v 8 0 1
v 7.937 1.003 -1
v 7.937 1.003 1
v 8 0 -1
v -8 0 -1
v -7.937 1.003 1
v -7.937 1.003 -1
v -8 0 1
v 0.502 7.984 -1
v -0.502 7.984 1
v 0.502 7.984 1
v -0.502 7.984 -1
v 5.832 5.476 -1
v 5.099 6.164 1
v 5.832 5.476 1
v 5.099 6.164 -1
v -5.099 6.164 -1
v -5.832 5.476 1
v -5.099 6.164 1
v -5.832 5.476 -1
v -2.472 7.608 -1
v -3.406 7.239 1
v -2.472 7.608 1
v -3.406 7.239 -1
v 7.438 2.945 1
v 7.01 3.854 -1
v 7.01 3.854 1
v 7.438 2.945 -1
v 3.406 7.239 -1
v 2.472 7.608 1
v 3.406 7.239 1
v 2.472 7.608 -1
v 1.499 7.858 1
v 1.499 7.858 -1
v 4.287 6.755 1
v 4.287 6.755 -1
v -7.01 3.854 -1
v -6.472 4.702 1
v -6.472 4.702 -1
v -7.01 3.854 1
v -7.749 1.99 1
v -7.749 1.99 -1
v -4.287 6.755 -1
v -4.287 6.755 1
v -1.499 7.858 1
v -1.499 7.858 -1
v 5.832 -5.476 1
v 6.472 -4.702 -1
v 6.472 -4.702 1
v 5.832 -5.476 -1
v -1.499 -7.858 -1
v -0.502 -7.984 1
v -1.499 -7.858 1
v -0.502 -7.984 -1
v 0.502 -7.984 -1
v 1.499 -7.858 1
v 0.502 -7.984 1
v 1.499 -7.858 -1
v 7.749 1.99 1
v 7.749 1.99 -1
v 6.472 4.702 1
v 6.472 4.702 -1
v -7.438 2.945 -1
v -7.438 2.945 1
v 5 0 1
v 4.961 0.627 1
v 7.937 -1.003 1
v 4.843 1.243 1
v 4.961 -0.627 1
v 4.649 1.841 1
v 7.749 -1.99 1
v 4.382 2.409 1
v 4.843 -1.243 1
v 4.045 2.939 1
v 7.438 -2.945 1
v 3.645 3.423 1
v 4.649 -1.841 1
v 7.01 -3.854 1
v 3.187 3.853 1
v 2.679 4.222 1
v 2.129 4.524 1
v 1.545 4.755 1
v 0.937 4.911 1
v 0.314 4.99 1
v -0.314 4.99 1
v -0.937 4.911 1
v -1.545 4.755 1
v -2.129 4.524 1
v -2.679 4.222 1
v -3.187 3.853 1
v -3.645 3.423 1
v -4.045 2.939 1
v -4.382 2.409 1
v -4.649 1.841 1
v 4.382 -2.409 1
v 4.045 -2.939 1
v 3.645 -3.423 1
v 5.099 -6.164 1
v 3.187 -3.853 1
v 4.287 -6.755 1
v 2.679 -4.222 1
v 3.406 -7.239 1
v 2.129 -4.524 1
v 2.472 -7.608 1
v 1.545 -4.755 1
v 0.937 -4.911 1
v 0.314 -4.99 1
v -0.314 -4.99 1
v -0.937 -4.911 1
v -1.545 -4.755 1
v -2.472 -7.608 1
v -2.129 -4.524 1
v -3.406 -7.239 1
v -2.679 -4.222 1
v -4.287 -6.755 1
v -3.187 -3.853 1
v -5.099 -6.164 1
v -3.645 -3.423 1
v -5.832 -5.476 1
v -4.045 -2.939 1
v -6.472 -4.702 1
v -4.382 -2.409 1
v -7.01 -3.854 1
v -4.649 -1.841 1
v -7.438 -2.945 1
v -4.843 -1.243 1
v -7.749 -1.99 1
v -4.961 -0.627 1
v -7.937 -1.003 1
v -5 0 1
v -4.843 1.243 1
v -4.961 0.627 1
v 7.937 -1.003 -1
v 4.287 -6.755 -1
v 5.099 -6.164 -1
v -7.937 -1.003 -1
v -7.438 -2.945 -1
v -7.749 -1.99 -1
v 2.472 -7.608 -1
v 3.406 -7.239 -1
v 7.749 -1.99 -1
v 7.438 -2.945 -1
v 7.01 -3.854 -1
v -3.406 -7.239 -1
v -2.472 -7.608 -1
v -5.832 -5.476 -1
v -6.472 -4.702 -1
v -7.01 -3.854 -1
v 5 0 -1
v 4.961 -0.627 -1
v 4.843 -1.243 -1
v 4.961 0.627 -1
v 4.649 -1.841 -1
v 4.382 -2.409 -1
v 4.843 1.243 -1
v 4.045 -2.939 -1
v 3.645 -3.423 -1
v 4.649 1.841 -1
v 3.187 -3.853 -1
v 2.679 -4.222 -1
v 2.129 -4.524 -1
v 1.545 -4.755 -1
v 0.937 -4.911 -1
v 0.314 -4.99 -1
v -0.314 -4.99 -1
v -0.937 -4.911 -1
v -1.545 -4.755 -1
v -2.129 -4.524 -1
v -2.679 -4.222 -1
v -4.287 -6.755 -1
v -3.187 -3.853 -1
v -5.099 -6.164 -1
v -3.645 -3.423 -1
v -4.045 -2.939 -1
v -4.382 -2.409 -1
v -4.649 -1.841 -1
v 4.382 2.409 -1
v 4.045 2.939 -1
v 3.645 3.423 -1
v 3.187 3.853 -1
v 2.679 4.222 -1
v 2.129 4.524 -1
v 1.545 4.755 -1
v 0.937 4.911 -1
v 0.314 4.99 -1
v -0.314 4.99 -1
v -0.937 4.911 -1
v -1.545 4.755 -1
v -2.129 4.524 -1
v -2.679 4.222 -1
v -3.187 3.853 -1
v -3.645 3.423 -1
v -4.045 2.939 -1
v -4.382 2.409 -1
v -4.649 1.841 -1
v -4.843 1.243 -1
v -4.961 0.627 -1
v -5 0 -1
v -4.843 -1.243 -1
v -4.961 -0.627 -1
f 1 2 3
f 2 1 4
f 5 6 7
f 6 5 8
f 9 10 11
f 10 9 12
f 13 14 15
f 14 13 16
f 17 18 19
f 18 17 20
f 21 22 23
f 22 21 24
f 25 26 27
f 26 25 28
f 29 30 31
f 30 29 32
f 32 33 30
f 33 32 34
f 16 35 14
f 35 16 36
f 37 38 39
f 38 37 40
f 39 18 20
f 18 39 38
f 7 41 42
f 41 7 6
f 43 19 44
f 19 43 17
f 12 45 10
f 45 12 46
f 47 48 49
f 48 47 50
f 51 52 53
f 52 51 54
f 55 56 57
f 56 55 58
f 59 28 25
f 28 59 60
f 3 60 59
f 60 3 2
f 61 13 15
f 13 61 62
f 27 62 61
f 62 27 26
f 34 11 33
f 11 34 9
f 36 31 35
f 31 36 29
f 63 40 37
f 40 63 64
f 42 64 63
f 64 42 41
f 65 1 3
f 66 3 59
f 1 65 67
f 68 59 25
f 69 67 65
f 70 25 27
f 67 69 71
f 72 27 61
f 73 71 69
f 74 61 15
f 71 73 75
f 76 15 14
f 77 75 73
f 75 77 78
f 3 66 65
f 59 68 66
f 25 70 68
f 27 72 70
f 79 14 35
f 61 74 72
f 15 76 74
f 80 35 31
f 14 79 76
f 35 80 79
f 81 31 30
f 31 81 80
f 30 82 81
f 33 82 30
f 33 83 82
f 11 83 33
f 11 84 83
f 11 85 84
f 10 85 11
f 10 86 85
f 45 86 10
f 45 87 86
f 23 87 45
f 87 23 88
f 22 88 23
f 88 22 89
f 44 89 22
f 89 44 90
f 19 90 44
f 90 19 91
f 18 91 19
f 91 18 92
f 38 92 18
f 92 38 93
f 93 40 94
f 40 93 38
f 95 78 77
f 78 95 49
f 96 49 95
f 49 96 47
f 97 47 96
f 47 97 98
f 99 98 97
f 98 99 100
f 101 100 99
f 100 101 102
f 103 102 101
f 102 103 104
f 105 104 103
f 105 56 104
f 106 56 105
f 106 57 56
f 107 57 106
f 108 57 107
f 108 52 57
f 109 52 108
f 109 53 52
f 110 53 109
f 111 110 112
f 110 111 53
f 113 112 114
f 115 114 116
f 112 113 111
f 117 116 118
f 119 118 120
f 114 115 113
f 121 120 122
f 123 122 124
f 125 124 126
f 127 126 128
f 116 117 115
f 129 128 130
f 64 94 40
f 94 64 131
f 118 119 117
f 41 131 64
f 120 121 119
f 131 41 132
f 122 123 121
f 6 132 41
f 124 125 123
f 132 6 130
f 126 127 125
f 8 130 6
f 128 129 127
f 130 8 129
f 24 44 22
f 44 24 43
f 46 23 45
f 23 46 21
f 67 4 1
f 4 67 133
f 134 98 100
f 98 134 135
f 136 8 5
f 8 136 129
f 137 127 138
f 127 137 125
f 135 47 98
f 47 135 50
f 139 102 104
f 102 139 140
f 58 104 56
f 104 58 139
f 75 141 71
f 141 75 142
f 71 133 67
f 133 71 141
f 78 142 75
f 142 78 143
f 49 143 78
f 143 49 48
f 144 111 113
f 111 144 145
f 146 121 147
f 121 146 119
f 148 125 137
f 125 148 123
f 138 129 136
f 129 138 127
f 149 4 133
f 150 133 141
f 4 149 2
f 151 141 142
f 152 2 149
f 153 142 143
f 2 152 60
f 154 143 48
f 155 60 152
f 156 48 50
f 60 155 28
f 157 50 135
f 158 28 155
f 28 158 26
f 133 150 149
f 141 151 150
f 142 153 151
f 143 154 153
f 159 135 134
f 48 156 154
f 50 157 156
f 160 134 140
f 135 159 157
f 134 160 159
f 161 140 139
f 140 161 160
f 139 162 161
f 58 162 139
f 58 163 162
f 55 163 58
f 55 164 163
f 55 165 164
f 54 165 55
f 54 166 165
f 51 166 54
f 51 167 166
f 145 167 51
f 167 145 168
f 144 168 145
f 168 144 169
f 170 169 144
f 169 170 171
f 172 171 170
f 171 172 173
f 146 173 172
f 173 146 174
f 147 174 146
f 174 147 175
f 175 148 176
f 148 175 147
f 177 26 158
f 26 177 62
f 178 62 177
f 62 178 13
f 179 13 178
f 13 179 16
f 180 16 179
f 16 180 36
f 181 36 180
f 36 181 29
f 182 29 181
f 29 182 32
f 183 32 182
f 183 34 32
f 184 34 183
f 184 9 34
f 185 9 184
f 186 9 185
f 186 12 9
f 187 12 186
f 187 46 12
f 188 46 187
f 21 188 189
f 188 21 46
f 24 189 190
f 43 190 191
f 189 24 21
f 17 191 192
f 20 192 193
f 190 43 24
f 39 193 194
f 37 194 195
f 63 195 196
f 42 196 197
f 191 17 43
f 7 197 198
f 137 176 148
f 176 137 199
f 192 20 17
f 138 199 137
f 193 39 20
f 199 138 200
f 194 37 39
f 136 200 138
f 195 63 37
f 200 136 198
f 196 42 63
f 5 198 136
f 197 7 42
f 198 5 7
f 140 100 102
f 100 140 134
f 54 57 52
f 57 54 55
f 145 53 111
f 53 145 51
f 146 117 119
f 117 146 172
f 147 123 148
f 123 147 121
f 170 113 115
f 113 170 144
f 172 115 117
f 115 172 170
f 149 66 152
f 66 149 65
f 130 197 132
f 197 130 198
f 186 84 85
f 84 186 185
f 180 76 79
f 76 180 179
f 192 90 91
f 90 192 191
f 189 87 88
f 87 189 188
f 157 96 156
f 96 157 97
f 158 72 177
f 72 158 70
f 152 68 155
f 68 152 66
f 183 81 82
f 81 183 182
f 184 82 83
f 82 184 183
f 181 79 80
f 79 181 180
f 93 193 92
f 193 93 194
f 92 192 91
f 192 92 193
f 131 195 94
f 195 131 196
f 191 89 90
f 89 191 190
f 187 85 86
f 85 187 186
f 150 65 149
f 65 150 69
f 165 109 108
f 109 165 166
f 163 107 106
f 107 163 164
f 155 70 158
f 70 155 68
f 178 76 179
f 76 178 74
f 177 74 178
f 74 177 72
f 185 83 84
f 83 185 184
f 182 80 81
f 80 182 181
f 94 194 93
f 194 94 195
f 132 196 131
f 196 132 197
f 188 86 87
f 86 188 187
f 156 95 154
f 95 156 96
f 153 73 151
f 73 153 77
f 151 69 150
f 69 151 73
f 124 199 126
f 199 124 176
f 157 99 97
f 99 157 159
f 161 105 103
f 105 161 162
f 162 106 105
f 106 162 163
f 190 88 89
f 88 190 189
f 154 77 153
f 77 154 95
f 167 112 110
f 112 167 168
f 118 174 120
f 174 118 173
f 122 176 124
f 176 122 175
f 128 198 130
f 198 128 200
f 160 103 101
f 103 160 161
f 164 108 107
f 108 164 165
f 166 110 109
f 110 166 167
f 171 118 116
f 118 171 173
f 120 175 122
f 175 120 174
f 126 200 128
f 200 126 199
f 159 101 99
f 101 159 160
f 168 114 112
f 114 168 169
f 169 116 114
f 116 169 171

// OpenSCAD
$fn = 50;


difference() {
	union() {
		translate(v = [0, 0, -1.0000000000]) {
			cylinder(h = 2, r = 8.0000000000);
		}
	}
	union() {
		translate(v = [0, 0, -100.0000000000]) {
			cylinder(h = 200, r = 5.0000000000);
		}
	}
}
